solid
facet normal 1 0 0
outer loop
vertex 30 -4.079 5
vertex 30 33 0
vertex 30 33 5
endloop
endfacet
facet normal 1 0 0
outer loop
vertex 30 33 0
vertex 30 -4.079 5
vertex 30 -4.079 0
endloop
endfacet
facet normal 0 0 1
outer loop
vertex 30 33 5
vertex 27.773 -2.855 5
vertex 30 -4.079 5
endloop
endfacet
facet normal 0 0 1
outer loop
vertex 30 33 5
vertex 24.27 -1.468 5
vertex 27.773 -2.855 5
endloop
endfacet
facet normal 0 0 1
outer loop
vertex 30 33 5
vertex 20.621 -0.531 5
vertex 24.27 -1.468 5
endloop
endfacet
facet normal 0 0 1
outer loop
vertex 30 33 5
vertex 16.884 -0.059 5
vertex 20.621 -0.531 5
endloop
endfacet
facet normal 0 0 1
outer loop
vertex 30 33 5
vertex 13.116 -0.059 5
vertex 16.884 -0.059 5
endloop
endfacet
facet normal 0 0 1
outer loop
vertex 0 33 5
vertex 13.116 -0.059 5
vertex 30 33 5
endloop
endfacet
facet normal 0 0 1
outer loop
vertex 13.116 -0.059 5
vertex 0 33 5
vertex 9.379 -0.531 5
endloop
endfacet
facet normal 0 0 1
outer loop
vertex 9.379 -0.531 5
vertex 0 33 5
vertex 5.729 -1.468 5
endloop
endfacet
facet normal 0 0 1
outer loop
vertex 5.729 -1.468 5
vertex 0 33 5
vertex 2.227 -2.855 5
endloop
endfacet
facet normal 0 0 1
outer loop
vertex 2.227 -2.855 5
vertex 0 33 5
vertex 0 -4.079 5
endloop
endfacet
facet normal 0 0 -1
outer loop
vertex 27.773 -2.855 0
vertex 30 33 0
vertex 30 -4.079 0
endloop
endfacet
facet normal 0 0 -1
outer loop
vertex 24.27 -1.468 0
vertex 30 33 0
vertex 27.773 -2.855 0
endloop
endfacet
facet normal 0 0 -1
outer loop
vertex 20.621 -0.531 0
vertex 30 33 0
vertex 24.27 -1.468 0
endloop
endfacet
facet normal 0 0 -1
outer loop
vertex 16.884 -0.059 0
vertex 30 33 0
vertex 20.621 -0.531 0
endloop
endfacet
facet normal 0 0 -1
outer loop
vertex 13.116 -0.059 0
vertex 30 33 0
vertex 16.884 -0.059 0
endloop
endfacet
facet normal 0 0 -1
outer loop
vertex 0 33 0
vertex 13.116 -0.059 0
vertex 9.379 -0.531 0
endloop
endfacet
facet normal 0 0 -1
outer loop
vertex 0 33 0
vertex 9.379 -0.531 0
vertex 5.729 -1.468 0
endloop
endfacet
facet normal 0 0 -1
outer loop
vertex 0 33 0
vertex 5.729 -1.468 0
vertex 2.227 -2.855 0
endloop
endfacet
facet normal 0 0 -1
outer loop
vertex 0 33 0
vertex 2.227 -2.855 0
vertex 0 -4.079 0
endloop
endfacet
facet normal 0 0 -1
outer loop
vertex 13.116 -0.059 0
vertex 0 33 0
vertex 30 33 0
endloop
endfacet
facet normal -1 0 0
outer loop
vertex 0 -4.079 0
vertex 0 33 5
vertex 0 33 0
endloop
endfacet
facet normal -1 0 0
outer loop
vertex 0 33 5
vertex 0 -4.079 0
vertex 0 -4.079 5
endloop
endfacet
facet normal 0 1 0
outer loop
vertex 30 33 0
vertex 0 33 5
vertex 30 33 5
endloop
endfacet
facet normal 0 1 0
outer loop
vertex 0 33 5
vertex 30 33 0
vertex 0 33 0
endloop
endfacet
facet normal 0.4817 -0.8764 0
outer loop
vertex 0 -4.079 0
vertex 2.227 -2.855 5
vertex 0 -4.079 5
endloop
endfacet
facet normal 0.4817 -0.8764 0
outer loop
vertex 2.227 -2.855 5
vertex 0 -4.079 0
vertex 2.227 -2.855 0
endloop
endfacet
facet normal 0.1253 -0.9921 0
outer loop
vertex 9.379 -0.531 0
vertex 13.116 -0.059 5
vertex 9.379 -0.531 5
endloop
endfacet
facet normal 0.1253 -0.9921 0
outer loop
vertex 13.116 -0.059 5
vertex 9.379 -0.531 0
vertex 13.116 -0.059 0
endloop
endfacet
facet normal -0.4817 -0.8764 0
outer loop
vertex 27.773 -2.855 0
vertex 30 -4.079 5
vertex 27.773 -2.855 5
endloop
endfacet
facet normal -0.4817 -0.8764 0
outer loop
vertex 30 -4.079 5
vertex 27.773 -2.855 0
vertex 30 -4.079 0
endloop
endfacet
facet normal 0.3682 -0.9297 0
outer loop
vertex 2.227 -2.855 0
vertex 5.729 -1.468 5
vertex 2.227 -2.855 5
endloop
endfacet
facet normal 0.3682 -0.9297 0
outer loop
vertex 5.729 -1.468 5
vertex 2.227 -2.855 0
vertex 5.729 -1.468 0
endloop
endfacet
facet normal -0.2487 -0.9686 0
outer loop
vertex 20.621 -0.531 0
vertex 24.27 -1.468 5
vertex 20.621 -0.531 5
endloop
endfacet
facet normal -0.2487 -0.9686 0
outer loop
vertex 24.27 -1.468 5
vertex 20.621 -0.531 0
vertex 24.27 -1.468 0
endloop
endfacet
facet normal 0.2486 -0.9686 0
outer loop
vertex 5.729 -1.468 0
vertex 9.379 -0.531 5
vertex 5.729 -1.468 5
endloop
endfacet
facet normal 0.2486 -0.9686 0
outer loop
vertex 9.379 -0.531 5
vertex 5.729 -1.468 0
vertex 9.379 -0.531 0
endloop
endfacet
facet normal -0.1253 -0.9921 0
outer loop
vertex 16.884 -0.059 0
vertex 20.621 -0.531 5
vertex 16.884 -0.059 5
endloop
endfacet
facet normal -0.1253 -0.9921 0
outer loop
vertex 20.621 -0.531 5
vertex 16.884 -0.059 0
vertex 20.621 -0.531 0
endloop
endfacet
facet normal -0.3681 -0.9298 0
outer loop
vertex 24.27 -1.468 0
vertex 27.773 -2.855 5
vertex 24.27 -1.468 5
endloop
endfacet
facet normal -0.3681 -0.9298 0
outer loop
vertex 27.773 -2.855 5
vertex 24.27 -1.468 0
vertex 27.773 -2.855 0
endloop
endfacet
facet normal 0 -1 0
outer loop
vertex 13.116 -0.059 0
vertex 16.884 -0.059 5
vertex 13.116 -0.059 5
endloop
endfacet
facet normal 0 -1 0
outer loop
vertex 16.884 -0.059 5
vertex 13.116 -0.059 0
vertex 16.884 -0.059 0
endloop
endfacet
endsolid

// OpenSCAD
//
// ktRACK12
// 6, 3.3


difference()
{
    union()
    {
        cube( [30, 33, 5] );
        translate( [0, -10, 0] ) cube( [30, 10, 5] );
    }
    translate([15, -30, 0])
    #cylinder(5, d=60, $fn=50);

}
